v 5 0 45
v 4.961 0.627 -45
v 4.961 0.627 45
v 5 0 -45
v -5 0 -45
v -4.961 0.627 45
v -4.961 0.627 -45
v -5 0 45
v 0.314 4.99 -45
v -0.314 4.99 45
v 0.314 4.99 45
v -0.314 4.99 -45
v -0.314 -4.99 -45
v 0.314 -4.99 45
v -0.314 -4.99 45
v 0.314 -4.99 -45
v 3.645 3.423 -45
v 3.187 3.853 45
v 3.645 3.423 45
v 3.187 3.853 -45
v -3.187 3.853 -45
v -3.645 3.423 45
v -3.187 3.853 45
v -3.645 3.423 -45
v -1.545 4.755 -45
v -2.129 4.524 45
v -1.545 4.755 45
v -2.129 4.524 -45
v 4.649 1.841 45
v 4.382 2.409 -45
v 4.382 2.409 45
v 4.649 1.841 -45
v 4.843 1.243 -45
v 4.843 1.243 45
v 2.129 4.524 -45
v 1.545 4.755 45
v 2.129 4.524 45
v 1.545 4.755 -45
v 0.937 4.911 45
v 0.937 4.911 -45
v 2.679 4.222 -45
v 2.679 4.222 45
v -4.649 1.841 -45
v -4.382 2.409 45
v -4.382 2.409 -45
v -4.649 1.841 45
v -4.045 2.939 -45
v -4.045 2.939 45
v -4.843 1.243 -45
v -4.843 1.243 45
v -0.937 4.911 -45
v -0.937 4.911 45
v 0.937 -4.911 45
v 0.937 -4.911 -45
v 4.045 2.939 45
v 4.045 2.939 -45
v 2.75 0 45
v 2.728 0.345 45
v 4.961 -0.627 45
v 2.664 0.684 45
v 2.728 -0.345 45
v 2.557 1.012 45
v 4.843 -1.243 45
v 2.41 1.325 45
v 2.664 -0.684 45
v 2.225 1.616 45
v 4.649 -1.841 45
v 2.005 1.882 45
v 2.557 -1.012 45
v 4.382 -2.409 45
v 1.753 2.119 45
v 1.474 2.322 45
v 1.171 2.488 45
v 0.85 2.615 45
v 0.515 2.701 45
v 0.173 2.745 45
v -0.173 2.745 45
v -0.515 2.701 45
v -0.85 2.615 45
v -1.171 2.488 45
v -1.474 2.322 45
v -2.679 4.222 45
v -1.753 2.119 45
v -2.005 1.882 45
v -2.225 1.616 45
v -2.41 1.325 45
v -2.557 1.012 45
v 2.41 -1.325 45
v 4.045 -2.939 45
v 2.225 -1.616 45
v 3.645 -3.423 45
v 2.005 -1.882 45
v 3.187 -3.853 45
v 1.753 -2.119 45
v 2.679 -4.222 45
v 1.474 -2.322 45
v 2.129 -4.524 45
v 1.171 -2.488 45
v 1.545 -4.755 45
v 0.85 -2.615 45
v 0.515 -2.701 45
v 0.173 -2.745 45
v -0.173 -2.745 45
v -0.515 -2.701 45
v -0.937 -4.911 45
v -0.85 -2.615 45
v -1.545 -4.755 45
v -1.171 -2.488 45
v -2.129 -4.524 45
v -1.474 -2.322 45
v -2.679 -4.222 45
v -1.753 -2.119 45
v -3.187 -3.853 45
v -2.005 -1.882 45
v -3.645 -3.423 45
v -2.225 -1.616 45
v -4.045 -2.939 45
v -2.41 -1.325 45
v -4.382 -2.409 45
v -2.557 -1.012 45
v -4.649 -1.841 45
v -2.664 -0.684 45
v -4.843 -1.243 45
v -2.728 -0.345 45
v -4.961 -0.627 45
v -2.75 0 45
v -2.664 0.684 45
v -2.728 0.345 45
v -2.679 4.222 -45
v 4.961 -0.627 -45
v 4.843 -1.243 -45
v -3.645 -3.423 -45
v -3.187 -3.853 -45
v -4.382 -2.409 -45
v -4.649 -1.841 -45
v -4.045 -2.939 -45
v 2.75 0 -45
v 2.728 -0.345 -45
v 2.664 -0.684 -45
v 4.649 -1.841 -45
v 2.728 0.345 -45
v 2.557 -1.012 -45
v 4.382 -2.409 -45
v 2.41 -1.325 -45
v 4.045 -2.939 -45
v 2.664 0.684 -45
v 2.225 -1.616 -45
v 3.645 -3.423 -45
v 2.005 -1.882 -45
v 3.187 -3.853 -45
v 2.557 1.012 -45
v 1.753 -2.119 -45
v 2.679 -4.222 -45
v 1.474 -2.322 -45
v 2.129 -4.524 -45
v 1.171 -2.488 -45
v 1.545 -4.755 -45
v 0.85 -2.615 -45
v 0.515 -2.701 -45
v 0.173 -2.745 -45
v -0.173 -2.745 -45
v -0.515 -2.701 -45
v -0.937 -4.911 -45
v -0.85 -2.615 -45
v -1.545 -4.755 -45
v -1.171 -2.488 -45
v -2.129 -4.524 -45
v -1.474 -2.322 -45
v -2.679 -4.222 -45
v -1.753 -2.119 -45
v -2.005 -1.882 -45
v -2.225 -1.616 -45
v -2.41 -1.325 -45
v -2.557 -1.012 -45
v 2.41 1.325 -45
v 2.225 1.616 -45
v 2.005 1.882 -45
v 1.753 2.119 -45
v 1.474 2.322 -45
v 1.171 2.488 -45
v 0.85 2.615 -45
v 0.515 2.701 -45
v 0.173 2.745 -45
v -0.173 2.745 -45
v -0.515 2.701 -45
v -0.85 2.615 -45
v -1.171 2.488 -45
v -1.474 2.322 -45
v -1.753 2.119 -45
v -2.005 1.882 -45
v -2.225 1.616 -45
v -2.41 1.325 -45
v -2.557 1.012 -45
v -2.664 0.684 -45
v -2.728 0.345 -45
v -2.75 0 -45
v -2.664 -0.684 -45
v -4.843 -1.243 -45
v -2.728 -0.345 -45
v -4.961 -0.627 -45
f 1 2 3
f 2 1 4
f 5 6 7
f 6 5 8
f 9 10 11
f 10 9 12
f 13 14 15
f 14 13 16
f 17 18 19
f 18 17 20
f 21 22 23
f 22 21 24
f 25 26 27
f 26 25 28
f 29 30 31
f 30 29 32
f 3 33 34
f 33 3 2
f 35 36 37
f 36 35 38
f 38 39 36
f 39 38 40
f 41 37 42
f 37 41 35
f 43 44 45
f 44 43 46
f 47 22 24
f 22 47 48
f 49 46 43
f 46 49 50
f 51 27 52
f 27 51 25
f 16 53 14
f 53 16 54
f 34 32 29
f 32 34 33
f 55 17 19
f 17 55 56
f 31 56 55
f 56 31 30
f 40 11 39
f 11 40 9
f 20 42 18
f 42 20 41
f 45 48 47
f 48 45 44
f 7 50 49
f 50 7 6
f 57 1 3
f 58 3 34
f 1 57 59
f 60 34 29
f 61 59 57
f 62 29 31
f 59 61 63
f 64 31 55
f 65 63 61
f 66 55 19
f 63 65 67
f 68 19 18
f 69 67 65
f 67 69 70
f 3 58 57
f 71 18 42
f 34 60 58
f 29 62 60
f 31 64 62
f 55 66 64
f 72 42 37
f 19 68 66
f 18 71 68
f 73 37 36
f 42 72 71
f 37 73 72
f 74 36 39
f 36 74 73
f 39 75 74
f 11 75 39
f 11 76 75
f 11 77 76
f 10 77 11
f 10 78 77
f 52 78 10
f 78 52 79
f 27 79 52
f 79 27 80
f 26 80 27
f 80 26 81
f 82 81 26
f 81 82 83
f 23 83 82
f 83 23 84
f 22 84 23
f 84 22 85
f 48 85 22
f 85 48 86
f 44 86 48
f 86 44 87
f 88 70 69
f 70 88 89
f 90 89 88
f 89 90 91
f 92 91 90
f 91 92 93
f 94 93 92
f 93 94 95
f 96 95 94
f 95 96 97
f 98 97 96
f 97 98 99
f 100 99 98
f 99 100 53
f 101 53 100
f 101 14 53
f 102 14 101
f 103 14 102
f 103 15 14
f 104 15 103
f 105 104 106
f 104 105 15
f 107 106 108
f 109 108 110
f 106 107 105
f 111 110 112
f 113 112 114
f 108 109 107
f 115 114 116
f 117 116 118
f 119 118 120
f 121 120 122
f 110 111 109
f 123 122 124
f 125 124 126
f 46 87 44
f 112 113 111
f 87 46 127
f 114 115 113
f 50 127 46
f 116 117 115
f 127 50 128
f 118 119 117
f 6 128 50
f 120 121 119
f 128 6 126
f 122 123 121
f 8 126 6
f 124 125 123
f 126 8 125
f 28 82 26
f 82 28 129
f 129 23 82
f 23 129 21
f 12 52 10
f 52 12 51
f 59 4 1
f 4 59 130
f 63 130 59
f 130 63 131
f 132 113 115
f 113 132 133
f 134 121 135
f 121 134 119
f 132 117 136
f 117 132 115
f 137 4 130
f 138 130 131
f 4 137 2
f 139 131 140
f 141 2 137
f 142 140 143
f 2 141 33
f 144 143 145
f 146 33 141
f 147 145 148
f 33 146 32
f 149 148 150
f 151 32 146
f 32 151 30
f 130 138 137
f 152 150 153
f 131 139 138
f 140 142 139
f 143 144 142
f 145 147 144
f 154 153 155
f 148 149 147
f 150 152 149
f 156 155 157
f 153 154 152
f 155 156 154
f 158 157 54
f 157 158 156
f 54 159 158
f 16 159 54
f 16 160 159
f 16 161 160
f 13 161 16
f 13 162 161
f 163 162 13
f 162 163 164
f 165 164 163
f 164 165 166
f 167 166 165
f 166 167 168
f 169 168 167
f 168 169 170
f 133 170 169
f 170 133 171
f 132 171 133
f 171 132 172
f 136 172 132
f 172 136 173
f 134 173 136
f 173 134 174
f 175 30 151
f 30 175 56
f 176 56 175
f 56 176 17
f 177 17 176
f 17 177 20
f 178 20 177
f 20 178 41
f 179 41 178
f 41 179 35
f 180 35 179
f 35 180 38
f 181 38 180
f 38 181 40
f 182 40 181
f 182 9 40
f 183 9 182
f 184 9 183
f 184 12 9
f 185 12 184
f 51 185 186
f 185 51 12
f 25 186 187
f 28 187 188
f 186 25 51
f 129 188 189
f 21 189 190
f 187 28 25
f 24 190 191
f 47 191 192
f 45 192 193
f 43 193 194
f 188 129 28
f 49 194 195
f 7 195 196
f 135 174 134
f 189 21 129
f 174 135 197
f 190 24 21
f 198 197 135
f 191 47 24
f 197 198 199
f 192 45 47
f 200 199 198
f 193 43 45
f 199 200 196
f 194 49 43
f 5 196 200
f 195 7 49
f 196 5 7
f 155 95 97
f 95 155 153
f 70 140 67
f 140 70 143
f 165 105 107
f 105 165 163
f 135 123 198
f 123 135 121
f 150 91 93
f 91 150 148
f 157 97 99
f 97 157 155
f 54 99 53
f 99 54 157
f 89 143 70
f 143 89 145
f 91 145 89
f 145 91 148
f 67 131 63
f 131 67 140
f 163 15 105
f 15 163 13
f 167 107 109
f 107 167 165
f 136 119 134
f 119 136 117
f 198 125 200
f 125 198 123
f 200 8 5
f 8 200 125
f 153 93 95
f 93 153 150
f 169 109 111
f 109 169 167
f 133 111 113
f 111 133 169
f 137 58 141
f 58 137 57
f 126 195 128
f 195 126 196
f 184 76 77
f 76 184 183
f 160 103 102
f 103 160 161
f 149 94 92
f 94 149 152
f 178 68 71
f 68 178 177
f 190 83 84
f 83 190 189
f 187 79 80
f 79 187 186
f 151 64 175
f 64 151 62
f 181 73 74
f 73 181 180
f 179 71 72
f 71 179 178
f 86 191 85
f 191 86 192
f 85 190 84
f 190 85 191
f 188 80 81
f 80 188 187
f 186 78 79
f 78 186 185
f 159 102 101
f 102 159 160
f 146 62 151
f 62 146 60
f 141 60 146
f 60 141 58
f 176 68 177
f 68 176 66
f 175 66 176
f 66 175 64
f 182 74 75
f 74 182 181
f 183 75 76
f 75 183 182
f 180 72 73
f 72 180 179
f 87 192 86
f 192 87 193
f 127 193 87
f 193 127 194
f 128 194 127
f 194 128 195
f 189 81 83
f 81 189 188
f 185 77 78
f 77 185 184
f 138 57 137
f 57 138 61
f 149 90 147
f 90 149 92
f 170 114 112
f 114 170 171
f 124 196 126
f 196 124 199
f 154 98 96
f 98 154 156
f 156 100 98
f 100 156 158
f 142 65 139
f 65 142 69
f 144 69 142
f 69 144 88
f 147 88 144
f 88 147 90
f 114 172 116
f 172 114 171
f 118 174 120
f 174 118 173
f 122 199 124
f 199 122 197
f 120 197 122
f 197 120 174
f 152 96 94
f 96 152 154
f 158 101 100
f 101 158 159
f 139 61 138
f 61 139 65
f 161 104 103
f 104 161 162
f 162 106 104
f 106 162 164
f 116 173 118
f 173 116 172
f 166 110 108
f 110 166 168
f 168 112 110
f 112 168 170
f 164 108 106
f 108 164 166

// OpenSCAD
$fn = 50;


difference() {
	union() {
		translate(v = [0, 0, -45.0000000000]) {
			cylinder(h = 90, r = 5.0000000000);
		}
	}
	union() {
		translate(v = [0, 0, -100.0000000000]) {
			cylinder(h = 200, r = 2.7500000000);
		}
	}
}
